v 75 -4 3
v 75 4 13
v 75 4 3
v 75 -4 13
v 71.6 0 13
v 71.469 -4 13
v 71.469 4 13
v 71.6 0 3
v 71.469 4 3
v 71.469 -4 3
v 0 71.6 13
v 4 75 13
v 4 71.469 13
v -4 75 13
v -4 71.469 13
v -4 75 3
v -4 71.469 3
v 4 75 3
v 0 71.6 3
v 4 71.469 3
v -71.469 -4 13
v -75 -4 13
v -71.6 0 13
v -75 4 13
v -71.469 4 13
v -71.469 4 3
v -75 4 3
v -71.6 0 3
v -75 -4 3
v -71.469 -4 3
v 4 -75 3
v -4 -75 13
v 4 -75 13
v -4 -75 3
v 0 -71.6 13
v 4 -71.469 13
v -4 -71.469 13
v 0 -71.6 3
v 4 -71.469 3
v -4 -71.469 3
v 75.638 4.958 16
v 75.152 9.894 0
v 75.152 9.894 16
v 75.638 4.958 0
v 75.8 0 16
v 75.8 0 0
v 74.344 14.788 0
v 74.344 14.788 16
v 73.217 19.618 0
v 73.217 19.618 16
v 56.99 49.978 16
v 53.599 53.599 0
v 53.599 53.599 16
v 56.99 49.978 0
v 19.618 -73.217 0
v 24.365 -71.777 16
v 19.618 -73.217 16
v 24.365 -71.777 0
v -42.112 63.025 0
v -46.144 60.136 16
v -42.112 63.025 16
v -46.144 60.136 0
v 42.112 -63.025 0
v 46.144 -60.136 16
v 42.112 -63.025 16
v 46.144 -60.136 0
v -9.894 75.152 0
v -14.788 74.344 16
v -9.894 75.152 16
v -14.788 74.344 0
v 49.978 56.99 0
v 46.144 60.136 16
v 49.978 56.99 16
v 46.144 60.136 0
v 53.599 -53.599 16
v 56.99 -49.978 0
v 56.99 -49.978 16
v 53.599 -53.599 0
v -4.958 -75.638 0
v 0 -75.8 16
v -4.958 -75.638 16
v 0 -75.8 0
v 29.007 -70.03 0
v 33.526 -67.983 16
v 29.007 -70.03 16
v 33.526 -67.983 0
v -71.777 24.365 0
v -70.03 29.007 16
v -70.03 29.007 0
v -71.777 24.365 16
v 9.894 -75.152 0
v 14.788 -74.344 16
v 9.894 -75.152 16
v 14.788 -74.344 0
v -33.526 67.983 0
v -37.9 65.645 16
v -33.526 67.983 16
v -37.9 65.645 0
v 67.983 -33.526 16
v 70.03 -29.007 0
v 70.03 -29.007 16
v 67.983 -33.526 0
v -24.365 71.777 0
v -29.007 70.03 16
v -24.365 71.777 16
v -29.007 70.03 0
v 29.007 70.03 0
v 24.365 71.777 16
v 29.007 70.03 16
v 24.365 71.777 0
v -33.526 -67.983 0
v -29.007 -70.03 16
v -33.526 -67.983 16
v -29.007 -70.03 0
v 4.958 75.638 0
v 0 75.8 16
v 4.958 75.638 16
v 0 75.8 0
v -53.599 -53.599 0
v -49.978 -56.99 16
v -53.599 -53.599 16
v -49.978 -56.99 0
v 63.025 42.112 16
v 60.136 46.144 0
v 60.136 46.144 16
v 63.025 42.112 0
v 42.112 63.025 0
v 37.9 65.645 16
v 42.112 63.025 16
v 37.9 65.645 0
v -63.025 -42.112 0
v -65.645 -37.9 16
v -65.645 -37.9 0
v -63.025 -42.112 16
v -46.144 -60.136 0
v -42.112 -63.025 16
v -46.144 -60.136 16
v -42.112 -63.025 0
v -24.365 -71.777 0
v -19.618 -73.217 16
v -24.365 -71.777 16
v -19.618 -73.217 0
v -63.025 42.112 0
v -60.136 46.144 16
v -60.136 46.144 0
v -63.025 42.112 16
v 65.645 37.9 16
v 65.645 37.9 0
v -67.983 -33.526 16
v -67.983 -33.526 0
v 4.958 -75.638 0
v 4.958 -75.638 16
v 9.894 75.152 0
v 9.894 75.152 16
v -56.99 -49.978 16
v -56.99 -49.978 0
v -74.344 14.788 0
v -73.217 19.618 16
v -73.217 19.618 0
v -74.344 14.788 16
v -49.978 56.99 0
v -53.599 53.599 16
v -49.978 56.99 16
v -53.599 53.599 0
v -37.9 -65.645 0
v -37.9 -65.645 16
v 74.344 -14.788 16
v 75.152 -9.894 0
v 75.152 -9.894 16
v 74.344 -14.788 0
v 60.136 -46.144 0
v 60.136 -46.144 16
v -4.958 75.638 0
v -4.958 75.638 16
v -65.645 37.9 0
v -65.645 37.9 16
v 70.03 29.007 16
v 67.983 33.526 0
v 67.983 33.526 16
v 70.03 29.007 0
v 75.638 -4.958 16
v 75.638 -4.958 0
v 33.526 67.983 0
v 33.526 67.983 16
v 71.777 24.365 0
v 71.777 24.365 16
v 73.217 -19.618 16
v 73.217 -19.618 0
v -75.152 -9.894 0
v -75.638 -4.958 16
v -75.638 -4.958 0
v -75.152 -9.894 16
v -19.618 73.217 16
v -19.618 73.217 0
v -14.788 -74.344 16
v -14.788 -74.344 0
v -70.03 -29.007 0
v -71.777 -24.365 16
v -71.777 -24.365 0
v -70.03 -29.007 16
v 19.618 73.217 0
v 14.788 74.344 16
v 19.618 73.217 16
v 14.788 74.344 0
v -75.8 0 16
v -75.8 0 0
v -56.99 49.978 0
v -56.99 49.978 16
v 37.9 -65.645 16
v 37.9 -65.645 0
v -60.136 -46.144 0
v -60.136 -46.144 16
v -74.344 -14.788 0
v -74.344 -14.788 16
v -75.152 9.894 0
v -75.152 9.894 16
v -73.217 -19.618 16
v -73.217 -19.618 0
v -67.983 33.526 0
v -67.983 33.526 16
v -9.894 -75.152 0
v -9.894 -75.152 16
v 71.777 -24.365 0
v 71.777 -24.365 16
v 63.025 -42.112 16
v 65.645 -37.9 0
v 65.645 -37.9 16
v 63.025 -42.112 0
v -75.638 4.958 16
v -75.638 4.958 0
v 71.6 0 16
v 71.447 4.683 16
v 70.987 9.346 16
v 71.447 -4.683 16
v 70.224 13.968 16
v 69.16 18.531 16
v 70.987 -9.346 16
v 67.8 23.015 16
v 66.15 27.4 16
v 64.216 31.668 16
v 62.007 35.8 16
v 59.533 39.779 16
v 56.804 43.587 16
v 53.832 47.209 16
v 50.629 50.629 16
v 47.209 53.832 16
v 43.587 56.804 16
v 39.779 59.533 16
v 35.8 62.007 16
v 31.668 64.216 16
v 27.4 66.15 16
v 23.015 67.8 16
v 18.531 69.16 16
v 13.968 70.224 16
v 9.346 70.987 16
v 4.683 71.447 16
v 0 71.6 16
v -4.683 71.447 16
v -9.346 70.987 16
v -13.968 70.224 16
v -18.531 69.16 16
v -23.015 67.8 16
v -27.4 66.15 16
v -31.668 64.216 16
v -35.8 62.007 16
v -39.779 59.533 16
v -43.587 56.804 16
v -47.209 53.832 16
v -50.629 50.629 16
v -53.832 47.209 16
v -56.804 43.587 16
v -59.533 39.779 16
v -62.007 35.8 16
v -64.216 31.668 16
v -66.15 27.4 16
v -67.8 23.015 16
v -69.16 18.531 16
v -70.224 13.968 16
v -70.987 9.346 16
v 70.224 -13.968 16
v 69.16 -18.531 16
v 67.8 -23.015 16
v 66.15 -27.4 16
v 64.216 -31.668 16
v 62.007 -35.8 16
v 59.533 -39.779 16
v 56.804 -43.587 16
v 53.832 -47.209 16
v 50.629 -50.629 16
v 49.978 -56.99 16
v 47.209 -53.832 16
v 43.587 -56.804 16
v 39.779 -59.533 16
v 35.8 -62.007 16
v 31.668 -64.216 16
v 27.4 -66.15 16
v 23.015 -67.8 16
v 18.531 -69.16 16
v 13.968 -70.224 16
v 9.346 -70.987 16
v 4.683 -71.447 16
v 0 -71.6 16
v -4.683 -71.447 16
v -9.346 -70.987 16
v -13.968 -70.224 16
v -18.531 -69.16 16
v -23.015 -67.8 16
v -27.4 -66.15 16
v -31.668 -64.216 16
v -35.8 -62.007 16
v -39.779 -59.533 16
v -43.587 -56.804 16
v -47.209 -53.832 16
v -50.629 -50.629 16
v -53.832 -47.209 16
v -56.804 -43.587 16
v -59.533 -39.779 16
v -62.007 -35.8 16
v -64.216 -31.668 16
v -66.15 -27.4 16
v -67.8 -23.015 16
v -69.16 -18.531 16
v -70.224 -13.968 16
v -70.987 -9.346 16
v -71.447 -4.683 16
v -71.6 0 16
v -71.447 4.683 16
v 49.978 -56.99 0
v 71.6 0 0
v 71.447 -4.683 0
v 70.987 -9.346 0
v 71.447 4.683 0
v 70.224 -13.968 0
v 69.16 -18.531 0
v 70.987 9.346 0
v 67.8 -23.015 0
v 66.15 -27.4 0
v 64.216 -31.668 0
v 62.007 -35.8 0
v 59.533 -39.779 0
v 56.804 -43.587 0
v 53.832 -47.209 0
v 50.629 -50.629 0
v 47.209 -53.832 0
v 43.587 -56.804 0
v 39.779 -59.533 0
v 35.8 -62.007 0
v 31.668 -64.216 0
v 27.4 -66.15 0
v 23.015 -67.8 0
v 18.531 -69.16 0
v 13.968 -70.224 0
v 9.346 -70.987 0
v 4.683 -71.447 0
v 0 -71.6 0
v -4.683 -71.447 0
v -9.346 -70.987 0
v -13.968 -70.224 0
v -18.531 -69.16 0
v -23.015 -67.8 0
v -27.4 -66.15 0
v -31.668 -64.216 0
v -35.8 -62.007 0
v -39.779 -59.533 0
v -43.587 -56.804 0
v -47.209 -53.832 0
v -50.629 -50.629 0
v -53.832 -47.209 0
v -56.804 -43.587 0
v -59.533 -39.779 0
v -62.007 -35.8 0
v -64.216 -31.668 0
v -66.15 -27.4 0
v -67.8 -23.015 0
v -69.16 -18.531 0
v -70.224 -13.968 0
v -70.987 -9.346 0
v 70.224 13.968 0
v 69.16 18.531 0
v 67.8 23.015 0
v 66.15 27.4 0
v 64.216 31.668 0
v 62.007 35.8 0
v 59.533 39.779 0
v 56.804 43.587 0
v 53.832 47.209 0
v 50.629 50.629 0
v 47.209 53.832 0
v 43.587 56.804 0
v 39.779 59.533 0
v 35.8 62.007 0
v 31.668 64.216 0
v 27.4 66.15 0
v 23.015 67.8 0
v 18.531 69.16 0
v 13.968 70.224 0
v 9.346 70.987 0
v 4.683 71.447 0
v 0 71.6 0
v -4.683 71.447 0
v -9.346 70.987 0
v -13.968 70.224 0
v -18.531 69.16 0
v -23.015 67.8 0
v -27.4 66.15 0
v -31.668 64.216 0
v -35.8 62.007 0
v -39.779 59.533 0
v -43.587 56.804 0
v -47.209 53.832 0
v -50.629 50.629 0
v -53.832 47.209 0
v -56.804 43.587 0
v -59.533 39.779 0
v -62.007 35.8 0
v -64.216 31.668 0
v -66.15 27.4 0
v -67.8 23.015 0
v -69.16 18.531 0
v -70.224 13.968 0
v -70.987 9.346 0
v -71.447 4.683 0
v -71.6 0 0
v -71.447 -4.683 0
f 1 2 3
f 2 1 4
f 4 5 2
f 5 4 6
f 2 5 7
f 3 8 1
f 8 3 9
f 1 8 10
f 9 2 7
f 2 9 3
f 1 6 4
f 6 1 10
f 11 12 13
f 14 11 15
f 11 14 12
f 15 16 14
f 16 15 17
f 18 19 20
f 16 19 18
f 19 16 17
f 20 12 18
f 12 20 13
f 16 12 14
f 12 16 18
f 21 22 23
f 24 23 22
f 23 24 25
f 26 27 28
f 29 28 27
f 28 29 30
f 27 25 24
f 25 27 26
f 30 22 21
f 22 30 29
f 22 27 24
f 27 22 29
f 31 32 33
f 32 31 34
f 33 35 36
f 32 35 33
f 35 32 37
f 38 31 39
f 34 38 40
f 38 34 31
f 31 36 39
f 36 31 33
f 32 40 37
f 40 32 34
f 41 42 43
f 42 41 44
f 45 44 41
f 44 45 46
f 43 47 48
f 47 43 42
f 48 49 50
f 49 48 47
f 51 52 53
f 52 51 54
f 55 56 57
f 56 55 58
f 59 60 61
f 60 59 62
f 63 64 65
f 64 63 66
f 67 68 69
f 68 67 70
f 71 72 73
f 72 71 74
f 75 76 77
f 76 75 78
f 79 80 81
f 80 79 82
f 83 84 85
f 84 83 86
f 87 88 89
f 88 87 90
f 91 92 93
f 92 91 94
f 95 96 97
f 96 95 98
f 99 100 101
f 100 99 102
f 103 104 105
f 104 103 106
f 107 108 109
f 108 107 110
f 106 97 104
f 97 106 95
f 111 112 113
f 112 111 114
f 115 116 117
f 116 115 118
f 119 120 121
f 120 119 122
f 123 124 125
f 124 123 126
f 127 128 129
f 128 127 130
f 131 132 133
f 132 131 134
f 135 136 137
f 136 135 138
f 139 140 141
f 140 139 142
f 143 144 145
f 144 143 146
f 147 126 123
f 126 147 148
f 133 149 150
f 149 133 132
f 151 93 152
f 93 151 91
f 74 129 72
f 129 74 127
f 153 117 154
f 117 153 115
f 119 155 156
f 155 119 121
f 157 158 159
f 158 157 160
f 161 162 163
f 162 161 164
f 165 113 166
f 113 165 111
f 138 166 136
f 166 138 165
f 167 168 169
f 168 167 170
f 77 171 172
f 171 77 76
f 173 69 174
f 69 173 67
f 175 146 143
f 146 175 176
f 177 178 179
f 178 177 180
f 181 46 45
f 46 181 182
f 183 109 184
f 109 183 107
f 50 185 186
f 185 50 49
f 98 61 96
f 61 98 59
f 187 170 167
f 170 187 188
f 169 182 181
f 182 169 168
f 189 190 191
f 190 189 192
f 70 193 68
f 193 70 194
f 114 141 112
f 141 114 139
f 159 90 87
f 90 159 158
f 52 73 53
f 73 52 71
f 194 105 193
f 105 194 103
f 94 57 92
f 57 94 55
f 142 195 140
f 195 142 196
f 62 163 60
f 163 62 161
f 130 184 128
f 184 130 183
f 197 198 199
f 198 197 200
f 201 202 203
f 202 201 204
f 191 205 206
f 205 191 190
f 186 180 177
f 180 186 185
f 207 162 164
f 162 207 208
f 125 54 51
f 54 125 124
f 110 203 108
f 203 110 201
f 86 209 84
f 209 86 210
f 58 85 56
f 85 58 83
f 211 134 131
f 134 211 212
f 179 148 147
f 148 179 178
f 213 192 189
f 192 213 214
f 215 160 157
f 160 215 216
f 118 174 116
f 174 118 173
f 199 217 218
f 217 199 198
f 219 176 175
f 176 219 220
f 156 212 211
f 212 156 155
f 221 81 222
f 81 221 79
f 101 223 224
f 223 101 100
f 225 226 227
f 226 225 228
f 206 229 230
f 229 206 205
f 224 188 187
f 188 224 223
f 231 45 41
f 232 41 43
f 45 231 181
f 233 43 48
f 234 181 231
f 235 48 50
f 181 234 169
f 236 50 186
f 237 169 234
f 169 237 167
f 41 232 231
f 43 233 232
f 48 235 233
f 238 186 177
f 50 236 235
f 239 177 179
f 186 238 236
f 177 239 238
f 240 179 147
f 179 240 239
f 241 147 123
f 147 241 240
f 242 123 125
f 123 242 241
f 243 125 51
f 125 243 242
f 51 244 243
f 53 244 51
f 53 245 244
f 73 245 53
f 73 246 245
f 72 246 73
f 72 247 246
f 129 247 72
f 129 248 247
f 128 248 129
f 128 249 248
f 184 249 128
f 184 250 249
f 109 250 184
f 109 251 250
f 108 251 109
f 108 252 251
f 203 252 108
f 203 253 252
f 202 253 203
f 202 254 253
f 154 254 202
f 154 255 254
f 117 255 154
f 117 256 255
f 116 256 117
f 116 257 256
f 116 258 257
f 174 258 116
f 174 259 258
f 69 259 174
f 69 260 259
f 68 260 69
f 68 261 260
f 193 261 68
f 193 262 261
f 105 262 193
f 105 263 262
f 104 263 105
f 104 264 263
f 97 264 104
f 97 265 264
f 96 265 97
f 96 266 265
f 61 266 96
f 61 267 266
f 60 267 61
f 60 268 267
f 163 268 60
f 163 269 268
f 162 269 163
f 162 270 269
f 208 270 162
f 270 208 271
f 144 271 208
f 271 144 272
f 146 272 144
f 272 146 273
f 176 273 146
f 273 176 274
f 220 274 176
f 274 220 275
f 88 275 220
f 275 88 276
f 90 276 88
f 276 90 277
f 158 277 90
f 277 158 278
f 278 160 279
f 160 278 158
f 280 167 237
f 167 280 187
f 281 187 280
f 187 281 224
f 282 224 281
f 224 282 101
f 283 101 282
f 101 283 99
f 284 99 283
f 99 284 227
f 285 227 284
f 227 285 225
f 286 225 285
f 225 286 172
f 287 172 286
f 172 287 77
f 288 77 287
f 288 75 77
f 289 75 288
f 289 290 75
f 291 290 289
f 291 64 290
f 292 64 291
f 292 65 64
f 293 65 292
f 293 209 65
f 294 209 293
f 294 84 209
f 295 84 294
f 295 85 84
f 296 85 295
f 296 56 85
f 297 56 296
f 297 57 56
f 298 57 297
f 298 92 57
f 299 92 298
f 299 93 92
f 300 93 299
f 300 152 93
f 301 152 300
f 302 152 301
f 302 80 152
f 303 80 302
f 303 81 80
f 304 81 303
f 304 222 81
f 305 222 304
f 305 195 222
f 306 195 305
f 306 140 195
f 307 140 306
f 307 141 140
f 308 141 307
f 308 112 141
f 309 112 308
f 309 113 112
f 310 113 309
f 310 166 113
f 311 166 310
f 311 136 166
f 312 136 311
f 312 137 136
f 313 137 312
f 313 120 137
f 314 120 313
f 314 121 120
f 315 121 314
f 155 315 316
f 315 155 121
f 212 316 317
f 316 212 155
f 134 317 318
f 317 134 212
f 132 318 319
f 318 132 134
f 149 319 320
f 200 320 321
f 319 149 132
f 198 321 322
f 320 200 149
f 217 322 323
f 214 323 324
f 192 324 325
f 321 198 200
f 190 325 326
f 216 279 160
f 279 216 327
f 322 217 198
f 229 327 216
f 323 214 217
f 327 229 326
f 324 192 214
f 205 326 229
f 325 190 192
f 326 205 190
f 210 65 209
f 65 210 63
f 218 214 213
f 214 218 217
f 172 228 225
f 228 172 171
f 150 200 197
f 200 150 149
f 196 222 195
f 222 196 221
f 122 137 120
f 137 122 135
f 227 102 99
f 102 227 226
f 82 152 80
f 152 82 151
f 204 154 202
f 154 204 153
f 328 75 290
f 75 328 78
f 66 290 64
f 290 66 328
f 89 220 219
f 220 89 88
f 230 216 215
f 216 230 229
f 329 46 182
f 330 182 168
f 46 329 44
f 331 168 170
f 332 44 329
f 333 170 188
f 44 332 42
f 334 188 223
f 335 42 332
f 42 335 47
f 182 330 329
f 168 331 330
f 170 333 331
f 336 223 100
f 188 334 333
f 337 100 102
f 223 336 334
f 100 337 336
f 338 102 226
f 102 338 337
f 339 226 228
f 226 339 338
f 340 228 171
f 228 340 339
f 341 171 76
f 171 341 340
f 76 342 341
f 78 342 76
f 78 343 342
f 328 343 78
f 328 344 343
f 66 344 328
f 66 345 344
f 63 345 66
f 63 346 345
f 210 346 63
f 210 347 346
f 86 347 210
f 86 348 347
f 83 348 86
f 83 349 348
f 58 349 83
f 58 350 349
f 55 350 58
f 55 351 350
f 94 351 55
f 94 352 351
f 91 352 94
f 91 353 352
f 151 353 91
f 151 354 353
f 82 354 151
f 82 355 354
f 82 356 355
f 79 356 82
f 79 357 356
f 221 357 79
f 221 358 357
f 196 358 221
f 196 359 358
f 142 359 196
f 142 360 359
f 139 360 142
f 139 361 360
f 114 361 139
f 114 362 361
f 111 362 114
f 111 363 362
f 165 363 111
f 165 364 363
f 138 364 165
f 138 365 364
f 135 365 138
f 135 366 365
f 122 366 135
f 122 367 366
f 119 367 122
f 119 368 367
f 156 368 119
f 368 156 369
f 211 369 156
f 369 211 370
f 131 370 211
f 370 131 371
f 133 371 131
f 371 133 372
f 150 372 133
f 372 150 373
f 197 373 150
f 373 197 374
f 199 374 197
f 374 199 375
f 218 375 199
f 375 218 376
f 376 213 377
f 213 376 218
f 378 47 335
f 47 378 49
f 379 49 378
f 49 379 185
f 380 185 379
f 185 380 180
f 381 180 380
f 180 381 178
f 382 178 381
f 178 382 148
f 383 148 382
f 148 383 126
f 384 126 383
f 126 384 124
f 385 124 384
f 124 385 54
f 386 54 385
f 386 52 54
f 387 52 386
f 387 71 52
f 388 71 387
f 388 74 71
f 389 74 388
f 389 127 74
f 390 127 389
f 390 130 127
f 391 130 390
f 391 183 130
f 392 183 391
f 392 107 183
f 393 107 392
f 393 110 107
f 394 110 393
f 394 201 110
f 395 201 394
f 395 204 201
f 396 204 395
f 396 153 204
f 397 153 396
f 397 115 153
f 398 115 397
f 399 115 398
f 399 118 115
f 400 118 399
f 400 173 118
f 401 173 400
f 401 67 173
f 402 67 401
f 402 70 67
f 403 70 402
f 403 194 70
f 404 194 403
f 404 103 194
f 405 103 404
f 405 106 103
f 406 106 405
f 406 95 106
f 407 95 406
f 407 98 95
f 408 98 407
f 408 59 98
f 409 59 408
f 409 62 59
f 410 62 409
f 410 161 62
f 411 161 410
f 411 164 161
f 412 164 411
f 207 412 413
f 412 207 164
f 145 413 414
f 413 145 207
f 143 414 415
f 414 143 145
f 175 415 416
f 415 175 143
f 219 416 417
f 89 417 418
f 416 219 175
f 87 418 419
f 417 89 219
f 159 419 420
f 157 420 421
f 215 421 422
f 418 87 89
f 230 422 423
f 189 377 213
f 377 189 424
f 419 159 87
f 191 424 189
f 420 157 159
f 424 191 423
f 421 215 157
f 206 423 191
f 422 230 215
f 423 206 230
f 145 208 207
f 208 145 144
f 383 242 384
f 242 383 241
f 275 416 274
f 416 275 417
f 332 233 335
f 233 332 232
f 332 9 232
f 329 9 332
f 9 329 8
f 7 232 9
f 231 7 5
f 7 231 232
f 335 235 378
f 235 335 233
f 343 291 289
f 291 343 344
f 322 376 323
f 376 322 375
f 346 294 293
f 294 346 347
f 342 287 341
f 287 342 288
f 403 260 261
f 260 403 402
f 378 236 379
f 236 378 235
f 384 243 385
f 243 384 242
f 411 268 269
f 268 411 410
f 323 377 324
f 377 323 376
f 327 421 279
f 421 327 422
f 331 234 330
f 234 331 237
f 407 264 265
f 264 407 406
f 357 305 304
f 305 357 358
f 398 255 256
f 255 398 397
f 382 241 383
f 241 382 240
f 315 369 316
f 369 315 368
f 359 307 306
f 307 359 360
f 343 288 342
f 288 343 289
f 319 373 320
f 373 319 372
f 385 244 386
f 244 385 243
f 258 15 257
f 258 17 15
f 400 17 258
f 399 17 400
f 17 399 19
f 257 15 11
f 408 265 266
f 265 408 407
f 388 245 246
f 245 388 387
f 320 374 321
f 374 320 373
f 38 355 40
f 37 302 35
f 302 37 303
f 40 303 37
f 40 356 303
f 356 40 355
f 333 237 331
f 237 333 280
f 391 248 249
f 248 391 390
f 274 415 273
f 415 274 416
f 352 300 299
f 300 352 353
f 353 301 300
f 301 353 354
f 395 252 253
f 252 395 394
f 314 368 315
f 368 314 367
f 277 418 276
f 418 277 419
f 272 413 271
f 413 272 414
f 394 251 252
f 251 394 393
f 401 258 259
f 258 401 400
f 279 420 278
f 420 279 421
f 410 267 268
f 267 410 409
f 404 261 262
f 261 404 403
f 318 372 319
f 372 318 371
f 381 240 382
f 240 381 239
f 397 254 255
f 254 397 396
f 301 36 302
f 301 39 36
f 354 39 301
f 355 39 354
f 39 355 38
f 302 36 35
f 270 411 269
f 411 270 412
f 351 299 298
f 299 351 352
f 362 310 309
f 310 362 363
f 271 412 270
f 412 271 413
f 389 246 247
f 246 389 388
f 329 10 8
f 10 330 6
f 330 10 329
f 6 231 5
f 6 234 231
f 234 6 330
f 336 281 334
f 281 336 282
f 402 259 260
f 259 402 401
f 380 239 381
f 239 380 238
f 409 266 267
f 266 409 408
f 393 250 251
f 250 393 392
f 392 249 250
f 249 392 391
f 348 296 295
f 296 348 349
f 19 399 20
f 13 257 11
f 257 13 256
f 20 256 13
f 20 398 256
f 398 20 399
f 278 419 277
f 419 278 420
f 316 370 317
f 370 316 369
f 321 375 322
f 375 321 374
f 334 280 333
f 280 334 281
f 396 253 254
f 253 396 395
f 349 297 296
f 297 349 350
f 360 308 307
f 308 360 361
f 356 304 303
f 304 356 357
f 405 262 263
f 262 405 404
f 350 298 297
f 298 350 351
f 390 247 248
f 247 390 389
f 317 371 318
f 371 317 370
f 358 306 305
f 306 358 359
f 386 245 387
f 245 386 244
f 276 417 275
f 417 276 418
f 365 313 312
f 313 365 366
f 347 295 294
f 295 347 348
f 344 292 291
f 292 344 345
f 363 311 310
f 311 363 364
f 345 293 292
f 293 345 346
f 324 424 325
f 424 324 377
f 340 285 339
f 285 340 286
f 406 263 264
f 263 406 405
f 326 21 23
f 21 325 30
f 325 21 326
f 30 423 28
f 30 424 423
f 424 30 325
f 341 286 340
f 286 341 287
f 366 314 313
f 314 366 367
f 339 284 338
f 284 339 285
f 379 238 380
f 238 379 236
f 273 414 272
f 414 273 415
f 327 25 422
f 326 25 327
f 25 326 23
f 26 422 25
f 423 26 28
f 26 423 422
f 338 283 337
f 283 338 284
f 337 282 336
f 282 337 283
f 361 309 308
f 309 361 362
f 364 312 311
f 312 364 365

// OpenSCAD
// file: config.scad
// SportCam — shared parametric dimensions (mm).
// Every part file includes this; tweak here, re-render, everything stays consistent.

$fn = 96;
clr = 0.25;                    // general printed-fit clearance per side

// ---- pan stage -------------------------------------------------------------
base_d        = 150;           // base housing outer diameter
base_h        = 62;            // base housing height
base_wall     = 3;

ls_size       = 76.2;          // 3" lazy-susan square plate
ls_bolt       = 66;            // bolt spacing (square)
ls_hole_d     = 5;             // M5-ish mounting holes
ls_thick      = 8;             // bearing stack height

sr_body_d     = 22.5;          // slip ring body (Adafruit 736 class)
sr_flange_d   = 44.5;          // stationary flange diameter
sr_flange_t   = 2.5;
sr_hole_space = 33;            // two flange screw holes, M3
sr_wire_d     = 14;            // wire bundle pass-through

nema_face     = 42.3;          // NEMA17
nema_bolt     = 31;            // M3 square pattern
nema_boss_d   = 22.5;
nema_shaft_d  = 5;

// ---- belt drive ------------------------------------------------------------
gt2_pitch       = 2.0;
ring_teeth      = 120;         // printed ring pulley (6:1 with 20T motor pulley)
ring_pitch_r    = ring_teeth * gt2_pitch / (2 * PI);   // ≈ 38.2
ring_id         = 60;          // clears the 44.5 slip-ring flange with margin
pulley_h        = 8;           // belt is 6 mm wide
flange_lip      = 1.5;

// ---- rotating platform -----------------------------------------------------
plat_d        = 160;
plat_t        = 5;
plat_bolt_circle = 70;         // M3 bosses meeting the lazy-susan top plate

pi_l = 85; pi_w = 56;          // Raspberry Pi 5
pi_hole_dx = 58; pi_hole_dy = 49;
pi_hole_off = 3.5;             // hole inset from board corner
pi_standoff_h = 6;

// ---- tilt ------------------------------------------------------------------
servo_l = 40.5; servo_w = 20.2; servo_h = 38.5;   // DS3225 body
servo_tab_l = 54.5;            // over mounting tabs
servo_hole_dx = 49.5; servo_hole_dy = 10;         // 4 × M4 tab holes
servo_axis_off = 9.9;          // spline axis from body front face

tilt_bearing_od = 18; tilt_bearing_w = 4;         // 6701ZZ
tilt_shaft_d = 12;
tower_h = 90;                  // tilt-axis height above platform
tower_w = 30; tower_t = 12;
tower_gap = 90;                // clear width between the two uprights

// ---- camera cradle ---------------------------------------------------------
lens_d = 33;                   // Arducam zoom-lens barrel — MEASURE YOURS
cam_board_w = 25;              // IMX219 board width behind lens
horn_d = 21;                   // DS3225 round metal horn
horn_screw_circle = 14;        // 4 × M3 on the horn
cradle_w = 60;

// ---- UWB anchor arm --------------------------------------------------------
arm_len = 200;                 // baseline = 2 × arm_len = 400
arm_w = 18; arm_t = 8;
uwb_l = 55; uwb_w = 30;        // ESP32-UWB board
uwb_hole_dx = 49; uwb_hole_dy = 24;               // corner holes — MEASURE YOURS

// ---- wearable pod ----------------------------------------------------------
pod_inner_l = 58; pod_inner_w = 33; pod_inner_h = 22;  // board + LiPo + TP4056
pod_wall = 2.0;
strap_w = 26;                  // elastic armband width
// main file
// Translucent diffuser band that closes the base housing's LED window.
// Print in white/natural PETG, 2 perimeters, 0% infill, no top/bottom.
include <config.scad>

led_window_h = 12;             // must match base_housing.scad
lip = 2;

module led_diffuser_ring() {
    difference() {
        cylinder(d = base_d + 1.6, h = led_window_h + 2 * lip);
        translate([0, 0, -1])
            cylinder(d = base_d - 2 * base_wall - 0.8, h = led_window_h + 2 * lip + 2);
        // snap reliefs: 4 shallow finger cuts on the inside lip
        for (a = [0:90:270])
            rotate([0, 0, a])
                translate([base_d / 2 - base_wall, 0, led_window_h / 2 + lip])
                    cube([base_wall * 2, 8, led_window_h - 2], center = true);
    }
}

led_diffuser_ring();
